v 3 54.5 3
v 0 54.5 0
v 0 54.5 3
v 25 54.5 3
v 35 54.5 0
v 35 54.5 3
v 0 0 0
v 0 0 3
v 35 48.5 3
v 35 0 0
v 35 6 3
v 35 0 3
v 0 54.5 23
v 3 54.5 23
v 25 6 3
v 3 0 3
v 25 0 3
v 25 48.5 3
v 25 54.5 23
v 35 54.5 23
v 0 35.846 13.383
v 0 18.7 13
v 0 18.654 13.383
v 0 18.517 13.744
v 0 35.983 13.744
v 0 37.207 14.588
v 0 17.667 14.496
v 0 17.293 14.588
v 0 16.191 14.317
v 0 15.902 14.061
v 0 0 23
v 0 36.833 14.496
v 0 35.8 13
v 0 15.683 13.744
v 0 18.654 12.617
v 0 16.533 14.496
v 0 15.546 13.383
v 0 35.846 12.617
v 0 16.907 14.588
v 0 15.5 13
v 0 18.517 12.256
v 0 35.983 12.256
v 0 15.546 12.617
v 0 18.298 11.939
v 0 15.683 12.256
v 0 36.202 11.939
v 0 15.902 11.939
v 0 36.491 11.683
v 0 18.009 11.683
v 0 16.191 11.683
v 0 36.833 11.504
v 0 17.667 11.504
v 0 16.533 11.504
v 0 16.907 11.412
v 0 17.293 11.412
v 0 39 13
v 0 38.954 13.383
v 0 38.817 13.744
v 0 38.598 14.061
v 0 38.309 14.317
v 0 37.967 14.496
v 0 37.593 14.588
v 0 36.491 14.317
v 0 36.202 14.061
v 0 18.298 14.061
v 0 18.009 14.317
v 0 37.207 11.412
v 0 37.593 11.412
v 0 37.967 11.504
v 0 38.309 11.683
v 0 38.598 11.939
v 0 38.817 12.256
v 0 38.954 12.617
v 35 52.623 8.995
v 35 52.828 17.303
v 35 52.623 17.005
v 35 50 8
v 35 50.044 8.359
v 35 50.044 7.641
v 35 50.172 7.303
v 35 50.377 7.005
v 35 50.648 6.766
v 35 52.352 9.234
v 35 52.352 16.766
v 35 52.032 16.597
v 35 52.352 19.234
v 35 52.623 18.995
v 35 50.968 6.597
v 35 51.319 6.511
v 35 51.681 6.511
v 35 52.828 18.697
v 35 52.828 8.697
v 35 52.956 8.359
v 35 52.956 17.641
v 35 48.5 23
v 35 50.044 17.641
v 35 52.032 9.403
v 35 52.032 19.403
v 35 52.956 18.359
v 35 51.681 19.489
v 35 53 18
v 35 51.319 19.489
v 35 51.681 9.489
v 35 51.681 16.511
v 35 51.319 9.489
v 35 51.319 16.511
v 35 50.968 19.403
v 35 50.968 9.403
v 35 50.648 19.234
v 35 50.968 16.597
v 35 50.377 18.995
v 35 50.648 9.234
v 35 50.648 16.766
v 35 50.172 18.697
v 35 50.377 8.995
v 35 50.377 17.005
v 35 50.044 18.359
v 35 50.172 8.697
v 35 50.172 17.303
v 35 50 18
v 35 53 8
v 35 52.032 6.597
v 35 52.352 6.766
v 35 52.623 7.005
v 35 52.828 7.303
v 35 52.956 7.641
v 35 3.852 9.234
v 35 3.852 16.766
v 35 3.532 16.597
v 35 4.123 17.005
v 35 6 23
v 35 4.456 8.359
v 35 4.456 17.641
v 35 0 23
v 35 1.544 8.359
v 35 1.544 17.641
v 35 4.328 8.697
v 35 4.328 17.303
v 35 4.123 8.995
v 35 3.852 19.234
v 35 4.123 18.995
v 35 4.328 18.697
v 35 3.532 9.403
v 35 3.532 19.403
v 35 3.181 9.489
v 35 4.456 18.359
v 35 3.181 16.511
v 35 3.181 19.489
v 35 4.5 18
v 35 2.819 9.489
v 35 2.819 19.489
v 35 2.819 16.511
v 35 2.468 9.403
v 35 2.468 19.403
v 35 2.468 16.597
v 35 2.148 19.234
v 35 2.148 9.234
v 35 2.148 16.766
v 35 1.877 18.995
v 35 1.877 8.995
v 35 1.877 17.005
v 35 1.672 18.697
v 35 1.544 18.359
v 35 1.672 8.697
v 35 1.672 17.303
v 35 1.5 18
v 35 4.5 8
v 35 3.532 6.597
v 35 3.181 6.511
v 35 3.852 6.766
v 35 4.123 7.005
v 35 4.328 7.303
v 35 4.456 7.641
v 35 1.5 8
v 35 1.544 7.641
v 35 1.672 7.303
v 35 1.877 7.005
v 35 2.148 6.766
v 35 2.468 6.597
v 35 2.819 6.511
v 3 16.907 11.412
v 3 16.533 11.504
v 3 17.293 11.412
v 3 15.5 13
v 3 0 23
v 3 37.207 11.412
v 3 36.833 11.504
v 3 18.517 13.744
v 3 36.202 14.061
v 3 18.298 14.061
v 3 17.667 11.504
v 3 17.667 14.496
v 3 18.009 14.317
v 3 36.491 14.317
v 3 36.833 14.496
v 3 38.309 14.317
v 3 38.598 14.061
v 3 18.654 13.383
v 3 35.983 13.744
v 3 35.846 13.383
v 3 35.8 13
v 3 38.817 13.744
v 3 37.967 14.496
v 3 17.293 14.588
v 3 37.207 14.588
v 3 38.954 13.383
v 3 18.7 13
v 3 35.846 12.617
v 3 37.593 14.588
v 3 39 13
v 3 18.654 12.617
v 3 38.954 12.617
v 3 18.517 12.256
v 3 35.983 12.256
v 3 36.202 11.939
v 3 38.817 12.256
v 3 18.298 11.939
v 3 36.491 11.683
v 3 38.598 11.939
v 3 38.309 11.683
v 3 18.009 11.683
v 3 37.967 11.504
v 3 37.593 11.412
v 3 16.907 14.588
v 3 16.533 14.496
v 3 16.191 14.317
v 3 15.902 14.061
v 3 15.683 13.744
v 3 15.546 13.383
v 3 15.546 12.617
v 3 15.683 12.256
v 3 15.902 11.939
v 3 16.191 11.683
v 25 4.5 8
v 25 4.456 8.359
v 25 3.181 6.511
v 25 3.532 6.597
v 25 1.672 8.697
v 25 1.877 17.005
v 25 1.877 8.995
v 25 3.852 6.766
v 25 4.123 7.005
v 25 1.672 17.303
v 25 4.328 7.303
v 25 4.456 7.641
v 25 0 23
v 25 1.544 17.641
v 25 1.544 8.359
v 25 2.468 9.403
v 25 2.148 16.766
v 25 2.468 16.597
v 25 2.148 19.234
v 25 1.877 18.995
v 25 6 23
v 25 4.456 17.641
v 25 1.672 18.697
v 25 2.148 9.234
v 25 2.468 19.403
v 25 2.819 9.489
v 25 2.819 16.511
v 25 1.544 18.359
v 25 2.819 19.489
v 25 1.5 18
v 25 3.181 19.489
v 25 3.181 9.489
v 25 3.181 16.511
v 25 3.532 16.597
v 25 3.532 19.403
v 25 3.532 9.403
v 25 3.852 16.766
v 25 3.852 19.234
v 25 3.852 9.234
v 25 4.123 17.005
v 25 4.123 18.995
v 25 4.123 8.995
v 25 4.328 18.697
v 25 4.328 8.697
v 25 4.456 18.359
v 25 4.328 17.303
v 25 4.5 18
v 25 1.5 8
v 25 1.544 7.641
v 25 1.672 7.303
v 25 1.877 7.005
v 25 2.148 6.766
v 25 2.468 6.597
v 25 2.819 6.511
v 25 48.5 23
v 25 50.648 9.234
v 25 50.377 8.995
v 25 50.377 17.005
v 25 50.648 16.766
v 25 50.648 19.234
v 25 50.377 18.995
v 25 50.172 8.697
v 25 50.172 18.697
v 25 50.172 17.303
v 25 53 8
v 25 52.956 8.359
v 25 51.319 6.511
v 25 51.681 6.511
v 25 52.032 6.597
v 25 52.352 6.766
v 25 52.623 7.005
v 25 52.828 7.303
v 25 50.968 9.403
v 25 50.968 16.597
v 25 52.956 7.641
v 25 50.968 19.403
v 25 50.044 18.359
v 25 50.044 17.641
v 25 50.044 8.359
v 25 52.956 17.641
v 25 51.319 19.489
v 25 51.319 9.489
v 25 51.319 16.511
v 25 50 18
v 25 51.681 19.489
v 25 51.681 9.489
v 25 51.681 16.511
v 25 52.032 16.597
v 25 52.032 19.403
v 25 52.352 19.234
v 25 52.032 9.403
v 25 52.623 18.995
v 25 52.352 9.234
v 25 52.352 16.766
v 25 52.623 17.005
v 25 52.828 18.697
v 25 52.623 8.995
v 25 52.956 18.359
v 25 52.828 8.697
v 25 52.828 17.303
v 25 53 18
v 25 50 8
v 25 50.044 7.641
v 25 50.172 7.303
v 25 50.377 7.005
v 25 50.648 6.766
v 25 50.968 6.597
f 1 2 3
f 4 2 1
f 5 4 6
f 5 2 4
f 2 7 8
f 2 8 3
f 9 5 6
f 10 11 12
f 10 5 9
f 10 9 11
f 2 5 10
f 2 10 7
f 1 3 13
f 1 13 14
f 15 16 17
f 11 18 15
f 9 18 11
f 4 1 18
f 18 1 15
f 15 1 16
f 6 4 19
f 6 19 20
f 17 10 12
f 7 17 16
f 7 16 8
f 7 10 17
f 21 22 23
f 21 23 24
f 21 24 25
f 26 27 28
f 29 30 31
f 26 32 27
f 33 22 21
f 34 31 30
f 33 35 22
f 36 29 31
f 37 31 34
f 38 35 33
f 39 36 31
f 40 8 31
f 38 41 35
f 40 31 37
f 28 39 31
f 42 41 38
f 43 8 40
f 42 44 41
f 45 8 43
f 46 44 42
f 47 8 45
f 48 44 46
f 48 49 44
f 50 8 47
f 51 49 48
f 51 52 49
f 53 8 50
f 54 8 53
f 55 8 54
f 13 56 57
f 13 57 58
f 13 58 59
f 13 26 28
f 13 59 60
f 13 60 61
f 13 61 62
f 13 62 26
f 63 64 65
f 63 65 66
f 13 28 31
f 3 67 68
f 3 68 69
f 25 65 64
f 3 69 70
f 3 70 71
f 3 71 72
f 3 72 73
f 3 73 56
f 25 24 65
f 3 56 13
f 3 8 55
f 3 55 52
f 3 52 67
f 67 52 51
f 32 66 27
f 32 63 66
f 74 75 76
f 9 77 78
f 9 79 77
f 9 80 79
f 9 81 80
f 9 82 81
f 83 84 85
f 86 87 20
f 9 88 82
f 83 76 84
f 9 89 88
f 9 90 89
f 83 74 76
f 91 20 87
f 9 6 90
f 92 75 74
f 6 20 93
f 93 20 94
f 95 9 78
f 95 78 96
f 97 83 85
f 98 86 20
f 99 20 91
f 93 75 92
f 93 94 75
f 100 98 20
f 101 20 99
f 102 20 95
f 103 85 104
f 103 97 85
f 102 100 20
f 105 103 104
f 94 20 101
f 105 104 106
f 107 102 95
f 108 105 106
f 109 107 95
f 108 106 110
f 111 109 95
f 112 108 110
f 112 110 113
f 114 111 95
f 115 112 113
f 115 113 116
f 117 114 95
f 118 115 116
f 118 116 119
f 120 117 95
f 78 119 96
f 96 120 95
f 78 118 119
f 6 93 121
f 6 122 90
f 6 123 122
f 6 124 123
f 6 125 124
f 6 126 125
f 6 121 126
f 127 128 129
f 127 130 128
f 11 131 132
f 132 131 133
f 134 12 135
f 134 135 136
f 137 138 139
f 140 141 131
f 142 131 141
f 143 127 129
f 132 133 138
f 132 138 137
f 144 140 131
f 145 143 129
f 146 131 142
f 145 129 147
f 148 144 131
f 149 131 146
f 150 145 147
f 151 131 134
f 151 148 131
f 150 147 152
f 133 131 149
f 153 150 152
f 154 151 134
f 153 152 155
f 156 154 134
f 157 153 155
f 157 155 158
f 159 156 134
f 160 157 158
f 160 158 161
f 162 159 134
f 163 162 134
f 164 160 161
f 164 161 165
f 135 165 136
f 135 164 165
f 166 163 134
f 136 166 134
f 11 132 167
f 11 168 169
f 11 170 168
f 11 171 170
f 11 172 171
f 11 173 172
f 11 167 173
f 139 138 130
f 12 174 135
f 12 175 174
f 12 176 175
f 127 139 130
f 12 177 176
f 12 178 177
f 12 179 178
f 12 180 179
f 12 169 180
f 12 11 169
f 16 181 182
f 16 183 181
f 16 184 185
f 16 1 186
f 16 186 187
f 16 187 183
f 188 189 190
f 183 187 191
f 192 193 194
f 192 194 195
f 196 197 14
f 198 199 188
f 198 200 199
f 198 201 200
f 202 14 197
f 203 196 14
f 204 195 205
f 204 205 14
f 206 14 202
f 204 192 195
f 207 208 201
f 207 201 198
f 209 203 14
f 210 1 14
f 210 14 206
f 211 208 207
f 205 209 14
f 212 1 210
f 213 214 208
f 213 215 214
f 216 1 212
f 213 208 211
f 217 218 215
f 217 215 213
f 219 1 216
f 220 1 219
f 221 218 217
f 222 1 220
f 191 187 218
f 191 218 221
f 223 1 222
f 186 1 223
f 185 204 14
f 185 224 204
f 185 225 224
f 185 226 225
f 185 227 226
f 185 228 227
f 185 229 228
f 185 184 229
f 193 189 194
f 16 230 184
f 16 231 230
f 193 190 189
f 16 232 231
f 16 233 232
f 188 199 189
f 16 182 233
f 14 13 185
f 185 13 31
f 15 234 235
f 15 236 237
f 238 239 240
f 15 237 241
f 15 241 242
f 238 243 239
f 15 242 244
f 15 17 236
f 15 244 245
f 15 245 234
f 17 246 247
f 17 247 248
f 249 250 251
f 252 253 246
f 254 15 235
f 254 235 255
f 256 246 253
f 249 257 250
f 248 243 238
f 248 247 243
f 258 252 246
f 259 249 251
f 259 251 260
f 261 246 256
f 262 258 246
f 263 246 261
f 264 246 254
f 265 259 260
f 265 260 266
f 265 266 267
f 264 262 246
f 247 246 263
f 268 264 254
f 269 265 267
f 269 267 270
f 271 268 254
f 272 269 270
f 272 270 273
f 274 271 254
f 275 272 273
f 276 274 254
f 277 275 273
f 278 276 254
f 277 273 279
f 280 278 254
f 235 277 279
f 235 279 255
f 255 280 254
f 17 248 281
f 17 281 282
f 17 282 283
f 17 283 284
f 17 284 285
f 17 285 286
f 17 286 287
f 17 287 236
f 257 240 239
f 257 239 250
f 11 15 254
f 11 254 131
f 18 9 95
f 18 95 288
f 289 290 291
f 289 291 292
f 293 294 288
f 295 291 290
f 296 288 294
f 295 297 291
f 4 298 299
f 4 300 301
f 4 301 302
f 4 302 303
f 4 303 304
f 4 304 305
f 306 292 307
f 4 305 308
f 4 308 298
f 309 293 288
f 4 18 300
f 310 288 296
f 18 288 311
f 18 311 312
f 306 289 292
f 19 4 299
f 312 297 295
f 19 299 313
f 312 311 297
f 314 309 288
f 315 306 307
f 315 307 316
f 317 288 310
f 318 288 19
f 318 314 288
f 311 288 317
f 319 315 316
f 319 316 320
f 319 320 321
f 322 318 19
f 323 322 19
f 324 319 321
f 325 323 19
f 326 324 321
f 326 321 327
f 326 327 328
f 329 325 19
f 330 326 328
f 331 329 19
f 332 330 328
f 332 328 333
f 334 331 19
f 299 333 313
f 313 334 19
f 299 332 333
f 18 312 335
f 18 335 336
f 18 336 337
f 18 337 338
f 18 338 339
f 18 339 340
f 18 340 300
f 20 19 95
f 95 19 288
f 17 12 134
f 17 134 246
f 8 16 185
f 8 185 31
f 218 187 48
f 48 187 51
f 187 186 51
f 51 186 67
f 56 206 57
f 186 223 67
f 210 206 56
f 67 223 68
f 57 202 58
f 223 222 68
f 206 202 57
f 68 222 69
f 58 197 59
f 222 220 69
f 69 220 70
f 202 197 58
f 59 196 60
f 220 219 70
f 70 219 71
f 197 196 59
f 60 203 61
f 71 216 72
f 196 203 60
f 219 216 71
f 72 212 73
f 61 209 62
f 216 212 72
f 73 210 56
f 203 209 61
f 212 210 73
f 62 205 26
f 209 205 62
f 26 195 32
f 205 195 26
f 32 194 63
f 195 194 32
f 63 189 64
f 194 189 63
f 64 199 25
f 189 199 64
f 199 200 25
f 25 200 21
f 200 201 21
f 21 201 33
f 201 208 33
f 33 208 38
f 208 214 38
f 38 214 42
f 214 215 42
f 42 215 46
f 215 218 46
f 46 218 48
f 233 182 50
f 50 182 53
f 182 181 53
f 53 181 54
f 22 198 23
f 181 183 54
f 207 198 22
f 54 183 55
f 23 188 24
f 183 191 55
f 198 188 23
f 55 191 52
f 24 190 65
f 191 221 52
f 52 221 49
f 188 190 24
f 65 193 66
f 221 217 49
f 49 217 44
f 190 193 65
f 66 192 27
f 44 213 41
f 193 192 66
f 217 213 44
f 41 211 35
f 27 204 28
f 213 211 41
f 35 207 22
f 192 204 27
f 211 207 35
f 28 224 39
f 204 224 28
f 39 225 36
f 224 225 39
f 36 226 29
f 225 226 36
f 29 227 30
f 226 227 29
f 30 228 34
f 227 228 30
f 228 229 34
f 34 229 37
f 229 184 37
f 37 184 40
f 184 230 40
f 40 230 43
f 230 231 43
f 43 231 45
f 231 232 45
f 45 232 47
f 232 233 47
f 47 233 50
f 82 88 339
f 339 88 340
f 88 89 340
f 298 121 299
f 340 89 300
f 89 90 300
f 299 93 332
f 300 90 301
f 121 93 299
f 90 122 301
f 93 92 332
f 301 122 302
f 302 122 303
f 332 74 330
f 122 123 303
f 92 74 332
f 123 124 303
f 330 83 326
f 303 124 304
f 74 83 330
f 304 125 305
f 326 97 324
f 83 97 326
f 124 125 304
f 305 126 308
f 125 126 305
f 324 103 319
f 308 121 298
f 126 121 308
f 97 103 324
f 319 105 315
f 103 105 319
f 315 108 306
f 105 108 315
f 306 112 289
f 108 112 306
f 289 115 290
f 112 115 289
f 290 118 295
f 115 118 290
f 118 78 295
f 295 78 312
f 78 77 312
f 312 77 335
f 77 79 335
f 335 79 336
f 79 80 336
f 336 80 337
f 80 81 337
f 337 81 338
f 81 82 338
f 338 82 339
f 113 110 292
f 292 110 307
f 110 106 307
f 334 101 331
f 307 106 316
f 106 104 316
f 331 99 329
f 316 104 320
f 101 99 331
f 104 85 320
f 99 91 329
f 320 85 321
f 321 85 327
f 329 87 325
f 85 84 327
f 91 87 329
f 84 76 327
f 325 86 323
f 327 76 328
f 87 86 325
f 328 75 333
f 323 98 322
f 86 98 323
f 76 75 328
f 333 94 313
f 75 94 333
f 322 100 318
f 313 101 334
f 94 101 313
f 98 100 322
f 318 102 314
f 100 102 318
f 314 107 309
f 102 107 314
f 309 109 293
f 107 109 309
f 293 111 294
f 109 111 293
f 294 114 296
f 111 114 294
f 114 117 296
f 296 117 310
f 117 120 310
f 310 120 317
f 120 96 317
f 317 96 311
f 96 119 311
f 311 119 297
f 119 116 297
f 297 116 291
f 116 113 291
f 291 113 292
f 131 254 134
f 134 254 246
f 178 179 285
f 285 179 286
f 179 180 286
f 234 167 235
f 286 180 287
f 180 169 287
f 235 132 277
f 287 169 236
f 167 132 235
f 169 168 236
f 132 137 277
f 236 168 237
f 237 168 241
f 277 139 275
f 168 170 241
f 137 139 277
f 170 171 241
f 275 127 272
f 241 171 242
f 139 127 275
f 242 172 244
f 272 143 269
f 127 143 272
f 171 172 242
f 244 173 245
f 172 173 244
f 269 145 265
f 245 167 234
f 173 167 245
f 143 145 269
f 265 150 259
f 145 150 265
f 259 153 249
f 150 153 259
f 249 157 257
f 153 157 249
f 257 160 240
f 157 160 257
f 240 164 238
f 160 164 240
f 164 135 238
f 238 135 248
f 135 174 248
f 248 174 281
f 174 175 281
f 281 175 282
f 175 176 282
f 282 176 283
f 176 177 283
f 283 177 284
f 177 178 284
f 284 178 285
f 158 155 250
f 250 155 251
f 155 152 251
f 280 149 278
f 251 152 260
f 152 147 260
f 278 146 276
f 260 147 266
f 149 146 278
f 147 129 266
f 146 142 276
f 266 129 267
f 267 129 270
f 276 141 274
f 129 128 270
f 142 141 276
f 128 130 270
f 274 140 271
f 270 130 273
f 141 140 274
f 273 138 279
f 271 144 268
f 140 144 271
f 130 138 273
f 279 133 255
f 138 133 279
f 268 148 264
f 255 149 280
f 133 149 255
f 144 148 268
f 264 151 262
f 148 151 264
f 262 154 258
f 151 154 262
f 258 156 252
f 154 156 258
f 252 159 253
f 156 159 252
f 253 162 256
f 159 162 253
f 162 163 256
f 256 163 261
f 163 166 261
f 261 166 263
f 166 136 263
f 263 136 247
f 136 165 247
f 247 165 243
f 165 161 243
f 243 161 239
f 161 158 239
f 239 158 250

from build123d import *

# Parameters (mm, degrees)
SKETCH_W        = 35
SKETCH_H        = 54.5
PAD_DEPTH       = 3
SKETCH001_W     = 3
SKETCH001_H     = 54.5
PAD001_DEPTH    = 20
SKETCH002_W     = 10
SKETCH002_H     = 6
PAD002_DEPTH    = 20
SKETCH003_R     = 1.5
POCKET_DEPTH    = 11
SKETCH004_R     = 1.6
POCKET001_DEPTH = 5


with BuildPart() as part:
    # Sketch → Pad (new body)
    with BuildSketch(Plane.XY):
        with Locations((17.5, 27.25)):
            Rectangle(SKETCH_W, SKETCH_H)
    extrude(amount=PAD_DEPTH)

    # Sketch001 (on Face6 of Pad) → Pad001 (join)
    with BuildSketch(Plane.XY.offset(3)):
        with Locations((1.5, 27.25)):
            Rectangle(SKETCH001_W, SKETCH001_H)
    extrude(amount=PAD001_DEPTH)

    # Sketch002 (on Face6 of Pad001) → Pad002 (join)
    with BuildSketch(Plane.XY.offset(3)):
        with Locations((30, 3)):
            Rectangle(SKETCH002_W, SKETCH002_H)
        with Locations((30, 51.5)):
            Rectangle(SKETCH002_W, SKETCH002_H)
    extrude(amount=PAD002_DEPTH)

    # Sketch003 (on Face11 of Pad002) → Pocket (cut)
    with BuildSketch(Plane.YZ.offset(35)):
        with Locations((3, 18)):
            Circle(SKETCH003_R)
        with Locations((3, 8)):
            Circle(SKETCH003_R)
        with Locations((51.5, 18)):
            Circle(SKETCH003_R)
        with Locations((51.5, 8)):
            Circle(SKETCH003_R)
    extrude(amount=-POCKET_DEPTH, mode=Mode.SUBTRACT)

    # Sketch004 (on Face12 of Pocket) → Pocket001 (cut)
    with BuildSketch(Plane.YZ.offset(3)):
        with Locations((17.1, 13)):
            Circle(SKETCH004_R)
        with Locations((37.4, 13)):
            Circle(SKETCH004_R)
    extrude(amount=-POCKET001_DEPTH, mode=Mode.SUBTRACT)


solid = part.part
